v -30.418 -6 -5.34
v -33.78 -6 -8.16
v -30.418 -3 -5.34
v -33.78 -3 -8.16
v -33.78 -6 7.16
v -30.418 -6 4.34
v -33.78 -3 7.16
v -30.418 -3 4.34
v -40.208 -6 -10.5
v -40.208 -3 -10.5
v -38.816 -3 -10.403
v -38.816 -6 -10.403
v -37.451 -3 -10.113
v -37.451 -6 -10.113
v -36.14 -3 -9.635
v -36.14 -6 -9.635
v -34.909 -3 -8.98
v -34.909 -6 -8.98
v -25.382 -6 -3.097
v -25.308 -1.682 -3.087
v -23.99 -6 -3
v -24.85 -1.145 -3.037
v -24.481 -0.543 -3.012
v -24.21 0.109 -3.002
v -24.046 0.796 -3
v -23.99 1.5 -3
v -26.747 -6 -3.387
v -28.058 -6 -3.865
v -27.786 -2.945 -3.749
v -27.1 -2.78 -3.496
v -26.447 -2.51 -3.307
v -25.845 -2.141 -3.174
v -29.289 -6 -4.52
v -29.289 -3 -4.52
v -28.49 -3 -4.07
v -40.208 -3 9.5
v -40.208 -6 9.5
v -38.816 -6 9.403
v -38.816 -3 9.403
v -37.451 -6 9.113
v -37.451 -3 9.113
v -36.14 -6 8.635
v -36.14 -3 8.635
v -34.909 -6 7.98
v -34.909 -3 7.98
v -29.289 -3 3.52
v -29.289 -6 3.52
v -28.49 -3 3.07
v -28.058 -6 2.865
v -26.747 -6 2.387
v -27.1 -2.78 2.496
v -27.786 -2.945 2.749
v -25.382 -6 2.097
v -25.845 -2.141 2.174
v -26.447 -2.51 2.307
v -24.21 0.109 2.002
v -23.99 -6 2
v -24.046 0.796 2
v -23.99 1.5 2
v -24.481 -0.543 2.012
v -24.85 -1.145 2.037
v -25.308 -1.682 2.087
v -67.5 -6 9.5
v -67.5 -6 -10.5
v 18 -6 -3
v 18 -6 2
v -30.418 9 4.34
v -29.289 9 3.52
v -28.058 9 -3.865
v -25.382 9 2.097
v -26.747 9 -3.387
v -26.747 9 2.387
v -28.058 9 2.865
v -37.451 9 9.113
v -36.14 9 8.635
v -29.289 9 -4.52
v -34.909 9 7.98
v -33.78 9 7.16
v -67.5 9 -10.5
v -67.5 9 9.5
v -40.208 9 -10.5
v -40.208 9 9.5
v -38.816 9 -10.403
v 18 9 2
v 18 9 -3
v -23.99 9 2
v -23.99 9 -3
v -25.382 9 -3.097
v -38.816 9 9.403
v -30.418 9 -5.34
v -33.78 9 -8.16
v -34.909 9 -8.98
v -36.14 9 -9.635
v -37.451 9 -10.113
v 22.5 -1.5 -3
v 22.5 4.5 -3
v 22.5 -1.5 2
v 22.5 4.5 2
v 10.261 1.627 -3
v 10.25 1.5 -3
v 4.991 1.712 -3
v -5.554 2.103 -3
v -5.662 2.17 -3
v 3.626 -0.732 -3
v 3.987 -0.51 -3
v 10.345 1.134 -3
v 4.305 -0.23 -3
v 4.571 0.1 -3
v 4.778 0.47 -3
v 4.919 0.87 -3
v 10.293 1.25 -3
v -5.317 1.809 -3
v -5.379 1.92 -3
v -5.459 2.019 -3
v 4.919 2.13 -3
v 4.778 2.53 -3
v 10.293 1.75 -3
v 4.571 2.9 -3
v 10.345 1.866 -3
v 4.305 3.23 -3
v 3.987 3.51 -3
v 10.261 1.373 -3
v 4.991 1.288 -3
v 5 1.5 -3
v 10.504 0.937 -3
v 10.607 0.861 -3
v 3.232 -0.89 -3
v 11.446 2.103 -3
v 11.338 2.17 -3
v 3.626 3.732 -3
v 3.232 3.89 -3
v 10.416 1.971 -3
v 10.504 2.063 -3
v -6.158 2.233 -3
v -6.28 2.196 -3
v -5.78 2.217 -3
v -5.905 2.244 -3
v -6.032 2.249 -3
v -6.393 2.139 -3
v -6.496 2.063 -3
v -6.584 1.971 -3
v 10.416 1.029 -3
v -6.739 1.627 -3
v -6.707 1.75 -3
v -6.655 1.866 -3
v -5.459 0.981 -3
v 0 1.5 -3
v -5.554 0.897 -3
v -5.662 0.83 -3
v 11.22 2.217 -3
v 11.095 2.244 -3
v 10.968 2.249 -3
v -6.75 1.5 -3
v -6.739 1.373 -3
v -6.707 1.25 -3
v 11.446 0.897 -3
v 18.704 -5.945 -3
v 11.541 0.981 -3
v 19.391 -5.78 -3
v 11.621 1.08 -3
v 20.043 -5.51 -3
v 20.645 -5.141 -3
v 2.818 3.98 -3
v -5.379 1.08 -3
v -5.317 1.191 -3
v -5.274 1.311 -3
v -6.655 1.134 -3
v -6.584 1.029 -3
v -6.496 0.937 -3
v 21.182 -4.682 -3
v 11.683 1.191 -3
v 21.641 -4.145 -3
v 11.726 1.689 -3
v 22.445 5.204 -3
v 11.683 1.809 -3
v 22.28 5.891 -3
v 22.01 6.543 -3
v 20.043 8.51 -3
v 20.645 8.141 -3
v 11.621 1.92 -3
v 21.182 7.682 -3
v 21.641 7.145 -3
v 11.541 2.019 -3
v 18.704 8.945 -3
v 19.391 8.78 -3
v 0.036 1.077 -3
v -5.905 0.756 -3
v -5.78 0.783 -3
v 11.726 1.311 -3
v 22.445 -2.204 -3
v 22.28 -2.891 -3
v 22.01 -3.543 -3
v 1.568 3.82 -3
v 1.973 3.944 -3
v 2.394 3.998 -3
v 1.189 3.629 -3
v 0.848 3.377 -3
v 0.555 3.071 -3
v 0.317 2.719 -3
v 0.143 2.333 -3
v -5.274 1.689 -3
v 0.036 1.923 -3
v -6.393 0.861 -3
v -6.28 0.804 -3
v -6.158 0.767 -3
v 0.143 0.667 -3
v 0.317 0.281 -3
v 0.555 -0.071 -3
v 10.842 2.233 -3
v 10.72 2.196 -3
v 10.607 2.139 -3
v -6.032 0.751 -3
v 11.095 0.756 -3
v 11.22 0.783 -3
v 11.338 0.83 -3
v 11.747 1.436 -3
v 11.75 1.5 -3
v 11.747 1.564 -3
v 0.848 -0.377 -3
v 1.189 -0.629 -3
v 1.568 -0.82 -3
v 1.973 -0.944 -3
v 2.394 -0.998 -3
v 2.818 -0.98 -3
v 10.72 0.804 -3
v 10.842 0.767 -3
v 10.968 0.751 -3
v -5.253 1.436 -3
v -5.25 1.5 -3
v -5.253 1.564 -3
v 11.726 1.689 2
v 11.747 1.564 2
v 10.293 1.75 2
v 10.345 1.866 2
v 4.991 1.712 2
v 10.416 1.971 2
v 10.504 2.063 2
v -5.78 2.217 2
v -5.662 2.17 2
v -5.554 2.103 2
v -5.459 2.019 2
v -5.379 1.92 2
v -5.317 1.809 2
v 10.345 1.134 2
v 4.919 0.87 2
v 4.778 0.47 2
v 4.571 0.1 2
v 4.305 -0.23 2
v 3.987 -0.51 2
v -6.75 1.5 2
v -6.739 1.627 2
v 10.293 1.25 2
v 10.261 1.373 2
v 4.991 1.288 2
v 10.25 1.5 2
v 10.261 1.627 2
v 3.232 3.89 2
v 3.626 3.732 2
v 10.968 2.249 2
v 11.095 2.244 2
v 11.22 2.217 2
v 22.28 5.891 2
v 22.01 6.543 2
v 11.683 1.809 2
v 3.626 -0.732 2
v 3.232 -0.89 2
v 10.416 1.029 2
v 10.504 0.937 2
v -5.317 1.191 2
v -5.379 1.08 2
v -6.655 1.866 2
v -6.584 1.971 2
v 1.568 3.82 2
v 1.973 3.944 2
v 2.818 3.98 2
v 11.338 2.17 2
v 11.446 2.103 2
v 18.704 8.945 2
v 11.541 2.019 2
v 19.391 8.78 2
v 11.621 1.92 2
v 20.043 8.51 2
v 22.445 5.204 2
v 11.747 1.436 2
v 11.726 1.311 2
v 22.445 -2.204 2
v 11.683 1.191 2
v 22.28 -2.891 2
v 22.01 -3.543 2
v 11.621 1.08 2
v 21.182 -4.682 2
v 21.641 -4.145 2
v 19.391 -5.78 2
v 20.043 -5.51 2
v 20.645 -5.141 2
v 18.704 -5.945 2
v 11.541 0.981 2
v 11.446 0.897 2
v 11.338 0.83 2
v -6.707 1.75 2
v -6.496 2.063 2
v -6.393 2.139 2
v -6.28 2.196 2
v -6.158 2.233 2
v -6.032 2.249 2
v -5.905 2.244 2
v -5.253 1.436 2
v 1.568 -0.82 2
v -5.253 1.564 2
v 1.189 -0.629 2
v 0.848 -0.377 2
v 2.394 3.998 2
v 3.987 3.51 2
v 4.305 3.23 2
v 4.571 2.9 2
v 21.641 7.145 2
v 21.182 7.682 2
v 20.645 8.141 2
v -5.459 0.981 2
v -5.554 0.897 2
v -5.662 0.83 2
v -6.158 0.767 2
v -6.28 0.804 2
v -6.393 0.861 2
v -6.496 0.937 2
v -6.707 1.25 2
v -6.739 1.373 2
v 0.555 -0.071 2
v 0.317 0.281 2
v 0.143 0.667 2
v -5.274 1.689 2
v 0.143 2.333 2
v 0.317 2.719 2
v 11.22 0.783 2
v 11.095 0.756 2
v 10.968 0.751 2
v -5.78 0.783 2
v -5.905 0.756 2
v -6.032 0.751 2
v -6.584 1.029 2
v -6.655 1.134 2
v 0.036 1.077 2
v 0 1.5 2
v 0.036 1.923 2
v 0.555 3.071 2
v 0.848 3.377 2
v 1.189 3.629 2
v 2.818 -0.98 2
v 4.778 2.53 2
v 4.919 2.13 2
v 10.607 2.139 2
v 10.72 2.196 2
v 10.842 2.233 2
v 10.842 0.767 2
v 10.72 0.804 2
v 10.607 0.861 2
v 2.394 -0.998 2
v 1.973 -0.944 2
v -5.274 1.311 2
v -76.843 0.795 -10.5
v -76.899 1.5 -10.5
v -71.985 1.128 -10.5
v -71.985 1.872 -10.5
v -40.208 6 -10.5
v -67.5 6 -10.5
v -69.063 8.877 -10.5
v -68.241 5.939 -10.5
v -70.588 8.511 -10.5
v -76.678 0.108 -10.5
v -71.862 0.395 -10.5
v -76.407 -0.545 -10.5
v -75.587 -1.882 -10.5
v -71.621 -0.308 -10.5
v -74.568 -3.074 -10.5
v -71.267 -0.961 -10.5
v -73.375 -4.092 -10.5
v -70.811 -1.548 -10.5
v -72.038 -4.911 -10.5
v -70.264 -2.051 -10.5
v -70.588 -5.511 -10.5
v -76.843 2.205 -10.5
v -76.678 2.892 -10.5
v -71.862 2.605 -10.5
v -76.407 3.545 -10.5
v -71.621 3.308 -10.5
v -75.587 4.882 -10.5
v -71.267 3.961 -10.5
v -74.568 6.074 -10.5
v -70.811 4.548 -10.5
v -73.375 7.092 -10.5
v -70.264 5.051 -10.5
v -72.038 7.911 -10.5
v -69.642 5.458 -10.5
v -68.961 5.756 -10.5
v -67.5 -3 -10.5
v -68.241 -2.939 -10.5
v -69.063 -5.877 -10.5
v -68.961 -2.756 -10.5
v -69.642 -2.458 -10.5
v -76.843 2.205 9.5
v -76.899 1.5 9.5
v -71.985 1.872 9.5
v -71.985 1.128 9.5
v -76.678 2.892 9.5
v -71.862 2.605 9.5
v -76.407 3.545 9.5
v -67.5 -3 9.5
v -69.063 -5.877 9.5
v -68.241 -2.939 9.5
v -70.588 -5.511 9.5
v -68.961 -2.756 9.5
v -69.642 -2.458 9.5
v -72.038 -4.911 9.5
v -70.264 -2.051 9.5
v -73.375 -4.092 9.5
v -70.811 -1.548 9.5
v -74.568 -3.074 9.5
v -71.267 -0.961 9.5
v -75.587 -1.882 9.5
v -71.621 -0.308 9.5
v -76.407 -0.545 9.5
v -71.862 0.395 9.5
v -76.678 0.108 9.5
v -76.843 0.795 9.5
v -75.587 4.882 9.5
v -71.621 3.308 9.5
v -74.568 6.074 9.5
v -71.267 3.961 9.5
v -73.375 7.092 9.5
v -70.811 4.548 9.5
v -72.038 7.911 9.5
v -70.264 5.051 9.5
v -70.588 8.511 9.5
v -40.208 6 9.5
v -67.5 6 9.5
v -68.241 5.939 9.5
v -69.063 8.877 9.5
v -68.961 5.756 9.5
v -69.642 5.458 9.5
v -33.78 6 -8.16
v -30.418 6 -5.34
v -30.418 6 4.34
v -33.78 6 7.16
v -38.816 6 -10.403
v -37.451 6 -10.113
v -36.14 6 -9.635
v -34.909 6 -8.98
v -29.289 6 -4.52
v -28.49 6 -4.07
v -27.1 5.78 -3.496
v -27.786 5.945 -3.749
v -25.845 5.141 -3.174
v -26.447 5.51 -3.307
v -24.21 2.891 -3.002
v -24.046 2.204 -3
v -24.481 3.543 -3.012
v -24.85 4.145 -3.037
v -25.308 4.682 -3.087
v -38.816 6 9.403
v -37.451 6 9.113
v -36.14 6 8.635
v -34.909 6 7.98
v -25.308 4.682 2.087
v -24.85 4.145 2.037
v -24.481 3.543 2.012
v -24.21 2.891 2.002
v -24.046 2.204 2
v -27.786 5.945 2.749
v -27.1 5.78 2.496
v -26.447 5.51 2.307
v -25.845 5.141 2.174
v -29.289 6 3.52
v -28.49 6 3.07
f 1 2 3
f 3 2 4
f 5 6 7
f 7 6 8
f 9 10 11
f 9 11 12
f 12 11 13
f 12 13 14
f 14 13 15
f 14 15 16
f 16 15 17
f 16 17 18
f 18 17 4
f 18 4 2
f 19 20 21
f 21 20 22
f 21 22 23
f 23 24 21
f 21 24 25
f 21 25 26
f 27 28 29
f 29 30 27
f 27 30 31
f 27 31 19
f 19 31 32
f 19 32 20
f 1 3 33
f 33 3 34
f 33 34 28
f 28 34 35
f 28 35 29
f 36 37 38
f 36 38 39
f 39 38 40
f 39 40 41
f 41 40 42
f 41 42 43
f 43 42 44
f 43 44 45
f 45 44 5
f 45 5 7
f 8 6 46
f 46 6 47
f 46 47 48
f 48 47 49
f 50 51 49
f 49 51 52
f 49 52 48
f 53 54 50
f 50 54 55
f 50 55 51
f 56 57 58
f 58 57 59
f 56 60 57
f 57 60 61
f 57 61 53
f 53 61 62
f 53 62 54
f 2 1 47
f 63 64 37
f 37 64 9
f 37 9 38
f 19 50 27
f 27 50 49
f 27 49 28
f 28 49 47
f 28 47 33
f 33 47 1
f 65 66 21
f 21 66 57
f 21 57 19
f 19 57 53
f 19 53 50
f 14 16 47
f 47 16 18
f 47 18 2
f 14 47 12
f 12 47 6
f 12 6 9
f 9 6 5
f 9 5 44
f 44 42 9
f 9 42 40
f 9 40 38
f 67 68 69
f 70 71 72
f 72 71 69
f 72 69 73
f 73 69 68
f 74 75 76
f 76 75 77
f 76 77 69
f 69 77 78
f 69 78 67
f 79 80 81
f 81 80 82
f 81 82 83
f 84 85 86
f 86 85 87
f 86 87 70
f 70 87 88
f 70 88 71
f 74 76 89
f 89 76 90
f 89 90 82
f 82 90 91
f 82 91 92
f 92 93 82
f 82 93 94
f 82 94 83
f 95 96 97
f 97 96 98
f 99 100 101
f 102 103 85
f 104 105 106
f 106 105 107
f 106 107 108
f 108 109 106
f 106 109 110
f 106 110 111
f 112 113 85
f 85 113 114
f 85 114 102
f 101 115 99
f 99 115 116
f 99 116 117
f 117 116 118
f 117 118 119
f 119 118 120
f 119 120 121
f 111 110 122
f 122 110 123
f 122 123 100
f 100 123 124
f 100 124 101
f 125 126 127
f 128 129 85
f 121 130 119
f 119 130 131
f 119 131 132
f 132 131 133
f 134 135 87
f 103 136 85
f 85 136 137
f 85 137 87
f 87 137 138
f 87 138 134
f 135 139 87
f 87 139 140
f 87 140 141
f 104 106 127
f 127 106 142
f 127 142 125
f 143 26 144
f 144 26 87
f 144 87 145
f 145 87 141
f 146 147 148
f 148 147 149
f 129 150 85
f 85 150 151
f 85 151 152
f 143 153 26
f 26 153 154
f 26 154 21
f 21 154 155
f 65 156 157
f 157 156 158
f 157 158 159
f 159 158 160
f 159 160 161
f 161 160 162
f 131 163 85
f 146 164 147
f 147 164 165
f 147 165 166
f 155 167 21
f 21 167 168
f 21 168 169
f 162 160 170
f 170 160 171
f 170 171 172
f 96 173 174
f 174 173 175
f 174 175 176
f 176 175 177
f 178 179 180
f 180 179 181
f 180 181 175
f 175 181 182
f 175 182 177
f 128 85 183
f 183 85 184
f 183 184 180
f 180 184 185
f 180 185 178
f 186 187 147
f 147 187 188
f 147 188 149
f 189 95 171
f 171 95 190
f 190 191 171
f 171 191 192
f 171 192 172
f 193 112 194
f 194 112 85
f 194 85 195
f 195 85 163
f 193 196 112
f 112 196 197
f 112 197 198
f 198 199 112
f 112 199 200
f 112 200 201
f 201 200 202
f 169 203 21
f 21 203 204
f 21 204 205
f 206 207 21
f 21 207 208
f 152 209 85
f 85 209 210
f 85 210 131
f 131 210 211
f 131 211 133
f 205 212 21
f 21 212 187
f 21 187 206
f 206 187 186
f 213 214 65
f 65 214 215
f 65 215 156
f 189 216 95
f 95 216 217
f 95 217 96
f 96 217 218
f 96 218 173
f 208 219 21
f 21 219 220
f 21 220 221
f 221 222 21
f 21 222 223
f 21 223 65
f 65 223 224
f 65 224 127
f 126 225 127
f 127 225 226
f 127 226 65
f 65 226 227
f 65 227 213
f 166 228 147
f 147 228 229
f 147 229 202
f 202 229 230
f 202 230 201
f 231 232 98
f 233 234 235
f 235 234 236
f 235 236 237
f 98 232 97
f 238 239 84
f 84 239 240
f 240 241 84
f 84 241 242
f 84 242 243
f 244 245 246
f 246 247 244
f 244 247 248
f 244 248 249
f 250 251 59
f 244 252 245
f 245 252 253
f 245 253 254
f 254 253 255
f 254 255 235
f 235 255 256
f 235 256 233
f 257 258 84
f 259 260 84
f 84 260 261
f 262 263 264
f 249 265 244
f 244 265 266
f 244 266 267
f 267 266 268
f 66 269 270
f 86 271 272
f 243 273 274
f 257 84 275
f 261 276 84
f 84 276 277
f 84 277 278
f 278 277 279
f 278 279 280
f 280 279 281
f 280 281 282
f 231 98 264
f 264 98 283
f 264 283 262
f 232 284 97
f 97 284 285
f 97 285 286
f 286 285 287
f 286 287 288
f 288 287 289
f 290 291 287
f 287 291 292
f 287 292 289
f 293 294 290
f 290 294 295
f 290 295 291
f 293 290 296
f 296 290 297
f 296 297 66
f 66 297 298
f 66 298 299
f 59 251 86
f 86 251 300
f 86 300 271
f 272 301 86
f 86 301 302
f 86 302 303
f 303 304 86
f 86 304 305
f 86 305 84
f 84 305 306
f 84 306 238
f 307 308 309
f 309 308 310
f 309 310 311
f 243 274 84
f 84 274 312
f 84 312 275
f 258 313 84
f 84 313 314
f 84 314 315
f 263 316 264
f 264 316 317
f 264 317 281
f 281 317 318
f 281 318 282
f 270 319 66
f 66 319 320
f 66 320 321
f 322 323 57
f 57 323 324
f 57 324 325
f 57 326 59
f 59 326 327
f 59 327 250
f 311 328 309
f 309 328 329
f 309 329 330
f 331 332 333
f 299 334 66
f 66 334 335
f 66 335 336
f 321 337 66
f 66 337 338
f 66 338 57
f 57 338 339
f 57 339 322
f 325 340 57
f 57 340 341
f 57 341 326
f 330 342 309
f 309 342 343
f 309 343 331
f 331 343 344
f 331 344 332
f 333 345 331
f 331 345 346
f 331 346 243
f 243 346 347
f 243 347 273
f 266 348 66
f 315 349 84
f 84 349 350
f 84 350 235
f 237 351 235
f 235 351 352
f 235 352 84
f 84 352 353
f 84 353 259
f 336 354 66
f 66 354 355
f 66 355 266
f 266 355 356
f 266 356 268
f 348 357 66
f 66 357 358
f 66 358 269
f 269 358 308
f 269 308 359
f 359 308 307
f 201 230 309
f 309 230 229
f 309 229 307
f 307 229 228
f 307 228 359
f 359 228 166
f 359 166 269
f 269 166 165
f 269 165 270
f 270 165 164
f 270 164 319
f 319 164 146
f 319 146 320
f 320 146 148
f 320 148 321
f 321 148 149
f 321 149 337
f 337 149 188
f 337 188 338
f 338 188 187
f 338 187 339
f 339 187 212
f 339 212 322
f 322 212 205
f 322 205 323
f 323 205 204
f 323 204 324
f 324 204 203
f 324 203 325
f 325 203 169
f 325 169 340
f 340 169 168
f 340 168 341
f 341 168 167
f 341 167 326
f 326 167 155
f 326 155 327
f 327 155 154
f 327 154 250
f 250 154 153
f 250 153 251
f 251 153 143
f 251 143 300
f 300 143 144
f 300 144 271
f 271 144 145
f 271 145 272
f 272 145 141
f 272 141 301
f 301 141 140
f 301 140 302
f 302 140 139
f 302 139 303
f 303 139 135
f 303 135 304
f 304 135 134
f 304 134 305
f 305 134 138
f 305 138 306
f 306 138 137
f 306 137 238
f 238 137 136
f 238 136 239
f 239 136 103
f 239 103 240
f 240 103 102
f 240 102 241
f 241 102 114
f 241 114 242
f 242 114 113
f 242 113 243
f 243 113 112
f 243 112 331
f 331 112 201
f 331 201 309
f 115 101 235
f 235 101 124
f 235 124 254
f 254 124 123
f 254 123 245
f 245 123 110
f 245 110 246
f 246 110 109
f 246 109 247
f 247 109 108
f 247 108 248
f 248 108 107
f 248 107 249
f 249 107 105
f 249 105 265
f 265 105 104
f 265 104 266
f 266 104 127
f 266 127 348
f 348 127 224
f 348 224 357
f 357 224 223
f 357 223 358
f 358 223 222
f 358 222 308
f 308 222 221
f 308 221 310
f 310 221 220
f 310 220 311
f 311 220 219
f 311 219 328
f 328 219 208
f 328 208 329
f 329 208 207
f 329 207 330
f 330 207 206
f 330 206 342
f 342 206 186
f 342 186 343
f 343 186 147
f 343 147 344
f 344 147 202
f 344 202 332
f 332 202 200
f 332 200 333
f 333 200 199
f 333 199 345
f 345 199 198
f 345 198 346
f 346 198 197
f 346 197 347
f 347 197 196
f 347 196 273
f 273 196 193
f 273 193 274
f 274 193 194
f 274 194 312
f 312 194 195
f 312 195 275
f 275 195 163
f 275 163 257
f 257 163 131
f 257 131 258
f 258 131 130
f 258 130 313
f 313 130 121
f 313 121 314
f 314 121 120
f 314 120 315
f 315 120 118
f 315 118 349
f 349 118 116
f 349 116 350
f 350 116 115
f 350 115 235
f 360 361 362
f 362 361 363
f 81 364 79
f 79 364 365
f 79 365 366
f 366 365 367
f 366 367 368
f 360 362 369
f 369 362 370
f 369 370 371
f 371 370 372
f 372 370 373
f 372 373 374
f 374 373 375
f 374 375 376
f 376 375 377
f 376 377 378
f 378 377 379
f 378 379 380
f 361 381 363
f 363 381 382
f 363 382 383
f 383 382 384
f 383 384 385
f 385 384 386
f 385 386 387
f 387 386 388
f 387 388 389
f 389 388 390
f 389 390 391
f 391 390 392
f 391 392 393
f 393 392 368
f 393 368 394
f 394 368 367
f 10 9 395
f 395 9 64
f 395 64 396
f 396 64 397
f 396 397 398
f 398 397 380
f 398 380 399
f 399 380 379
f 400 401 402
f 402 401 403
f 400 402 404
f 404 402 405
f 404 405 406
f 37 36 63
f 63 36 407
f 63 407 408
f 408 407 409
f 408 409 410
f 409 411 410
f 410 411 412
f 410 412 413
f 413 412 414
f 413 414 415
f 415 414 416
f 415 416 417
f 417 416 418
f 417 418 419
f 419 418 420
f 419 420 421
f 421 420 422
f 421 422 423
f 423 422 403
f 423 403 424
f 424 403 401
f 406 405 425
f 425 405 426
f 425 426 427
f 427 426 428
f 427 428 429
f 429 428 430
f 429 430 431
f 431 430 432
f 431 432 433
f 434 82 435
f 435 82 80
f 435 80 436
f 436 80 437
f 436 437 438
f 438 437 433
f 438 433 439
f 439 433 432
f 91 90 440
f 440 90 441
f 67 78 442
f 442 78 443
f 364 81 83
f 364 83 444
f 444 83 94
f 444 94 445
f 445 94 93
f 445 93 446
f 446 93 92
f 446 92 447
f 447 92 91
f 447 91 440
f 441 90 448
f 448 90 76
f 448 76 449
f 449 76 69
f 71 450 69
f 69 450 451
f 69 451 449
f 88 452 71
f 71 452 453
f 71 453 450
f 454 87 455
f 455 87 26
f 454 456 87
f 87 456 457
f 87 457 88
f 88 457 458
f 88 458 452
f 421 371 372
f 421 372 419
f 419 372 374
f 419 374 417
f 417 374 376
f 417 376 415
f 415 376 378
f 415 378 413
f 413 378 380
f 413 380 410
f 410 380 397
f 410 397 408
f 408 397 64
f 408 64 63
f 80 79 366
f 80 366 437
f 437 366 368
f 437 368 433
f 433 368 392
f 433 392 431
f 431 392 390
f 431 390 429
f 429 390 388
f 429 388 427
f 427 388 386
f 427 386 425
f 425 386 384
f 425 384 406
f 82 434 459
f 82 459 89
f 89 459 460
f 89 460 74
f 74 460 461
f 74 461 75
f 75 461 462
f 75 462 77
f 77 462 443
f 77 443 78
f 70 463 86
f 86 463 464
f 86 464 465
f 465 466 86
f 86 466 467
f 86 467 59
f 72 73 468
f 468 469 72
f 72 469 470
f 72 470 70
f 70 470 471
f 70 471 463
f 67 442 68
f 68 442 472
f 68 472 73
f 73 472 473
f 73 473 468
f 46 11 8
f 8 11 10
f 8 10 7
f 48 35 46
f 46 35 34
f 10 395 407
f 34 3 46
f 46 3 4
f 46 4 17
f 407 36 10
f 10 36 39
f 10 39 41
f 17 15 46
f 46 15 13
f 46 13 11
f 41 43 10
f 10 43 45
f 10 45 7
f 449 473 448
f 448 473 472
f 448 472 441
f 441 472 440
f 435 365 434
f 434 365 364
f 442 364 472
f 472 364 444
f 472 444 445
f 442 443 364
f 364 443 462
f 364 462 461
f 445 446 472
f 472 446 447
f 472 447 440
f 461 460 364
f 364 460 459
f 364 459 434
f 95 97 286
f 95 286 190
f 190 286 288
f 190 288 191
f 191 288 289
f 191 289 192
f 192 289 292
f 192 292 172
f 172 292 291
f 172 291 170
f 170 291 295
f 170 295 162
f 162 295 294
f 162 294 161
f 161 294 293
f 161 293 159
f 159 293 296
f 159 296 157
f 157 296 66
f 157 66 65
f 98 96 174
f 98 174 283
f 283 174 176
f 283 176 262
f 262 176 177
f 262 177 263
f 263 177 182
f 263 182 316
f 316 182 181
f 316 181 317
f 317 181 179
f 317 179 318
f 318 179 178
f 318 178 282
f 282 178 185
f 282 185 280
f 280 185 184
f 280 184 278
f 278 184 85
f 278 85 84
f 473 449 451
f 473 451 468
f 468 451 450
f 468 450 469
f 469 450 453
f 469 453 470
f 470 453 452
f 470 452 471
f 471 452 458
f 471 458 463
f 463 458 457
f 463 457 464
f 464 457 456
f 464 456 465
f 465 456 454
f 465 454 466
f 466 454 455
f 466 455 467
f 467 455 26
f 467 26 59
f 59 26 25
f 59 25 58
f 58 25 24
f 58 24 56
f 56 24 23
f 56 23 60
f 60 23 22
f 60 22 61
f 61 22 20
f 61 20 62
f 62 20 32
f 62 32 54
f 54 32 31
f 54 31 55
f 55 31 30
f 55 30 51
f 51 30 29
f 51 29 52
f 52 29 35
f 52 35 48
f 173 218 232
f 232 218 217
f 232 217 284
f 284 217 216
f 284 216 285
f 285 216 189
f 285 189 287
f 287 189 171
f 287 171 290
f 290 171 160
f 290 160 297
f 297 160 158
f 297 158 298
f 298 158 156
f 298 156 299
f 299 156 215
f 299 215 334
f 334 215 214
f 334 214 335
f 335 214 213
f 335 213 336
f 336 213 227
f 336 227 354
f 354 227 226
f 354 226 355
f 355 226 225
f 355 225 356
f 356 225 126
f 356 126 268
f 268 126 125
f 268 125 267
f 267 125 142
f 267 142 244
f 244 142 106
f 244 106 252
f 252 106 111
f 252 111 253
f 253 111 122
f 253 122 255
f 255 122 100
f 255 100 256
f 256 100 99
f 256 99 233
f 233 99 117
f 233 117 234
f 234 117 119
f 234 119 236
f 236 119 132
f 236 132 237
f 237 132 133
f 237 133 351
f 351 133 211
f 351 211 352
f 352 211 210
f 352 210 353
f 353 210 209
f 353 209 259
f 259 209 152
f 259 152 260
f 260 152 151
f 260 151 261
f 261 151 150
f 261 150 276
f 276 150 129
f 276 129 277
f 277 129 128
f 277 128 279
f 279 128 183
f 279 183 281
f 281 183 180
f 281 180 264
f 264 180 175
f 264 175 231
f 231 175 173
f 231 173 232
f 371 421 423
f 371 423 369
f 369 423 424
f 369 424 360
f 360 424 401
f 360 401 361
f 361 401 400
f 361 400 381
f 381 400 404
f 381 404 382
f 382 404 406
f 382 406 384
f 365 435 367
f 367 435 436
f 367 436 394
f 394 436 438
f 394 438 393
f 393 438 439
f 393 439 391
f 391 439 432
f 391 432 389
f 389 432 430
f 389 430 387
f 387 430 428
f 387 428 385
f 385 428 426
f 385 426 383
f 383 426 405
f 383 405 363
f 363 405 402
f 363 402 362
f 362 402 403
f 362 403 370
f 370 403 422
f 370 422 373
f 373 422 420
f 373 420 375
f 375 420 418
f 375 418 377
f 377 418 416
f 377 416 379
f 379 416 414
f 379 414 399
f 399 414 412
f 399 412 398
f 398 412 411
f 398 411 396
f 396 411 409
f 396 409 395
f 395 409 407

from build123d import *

# Parameters (mm, degrees)
ESBO_O1_W                         = 40
ESBO_O1_H                         = 15
RESSALTO_EXTRUS_O1_DEPTH          = 3
ESBO_O3_W                         = 40
ESBO_O3_H                         = 15
RESSALTO_EXTRUS_O2_DEPTH          = 2
CORTE_EXTRUS_O1_REACH             = 26.418
ESBO_O2_R                         = 2.5
ESBO_O2_R_2                       = 0.75
CORTE_EXTRUS_O1_DIRECTION_2_REACH = 26.418
ESBO_O5_W                         = 20
ESBO_O5_H                         = 15
RESSALTO_EXTRUS_O4_DEPTH          = 60
CHANFRO1_SIZE                     = 19.068057482
CHANFRO1_SIZE_2                   = 16
FILETE4_R                         = 10
CORTE_EXTRUS_O2_DEPTH             = 81.237970309
FILETE5_R                         = 4.5
CIRPATTERN1_COUNT                 = 2
FILLET1_R                         = 4.5


with BuildPart() as part:
    # Esboço1 → Ressalto-extrusão1 (new body)
    with BuildSketch(Plane.XY):
        with Locations((2.5, 1.5)):
            Rectangle(ESBO_O1_W, ESBO_O1_H)
    extrude(amount=-RESSALTO_EXTRUS_O1_DEPTH)

    # Esboço3 → Ressalto-extrusão2 (add)
    with BuildSketch(Plane.XY):
        with Locations((2.5, 1.5)):
            Rectangle(ESBO_O3_W, ESBO_O3_H)
    extrude(amount=RESSALTO_EXTRUS_O2_DEPTH)

    # Corte-extrusão1: up to this face of the body (flat: up to its plane)
    corte_extrus_o1_end = Plane(part.part.faces().sort_by_distance((2.5, 1.5, 2))[0])
    # Esboço2 → Corte-extrusão1 (cut, up to the picked face)
    with BuildSketch(Plane.XY, mode=Mode.PRIVATE) as corte_extrus_o1_sk1:
        with Locations(Location((2.5, 1.5, 0), (0, 0, 180))):
            Circle(ESBO_O2_R)
    corte_extrus_o1_tool1 = split(extrude(corte_extrus_o1_sk1.sketch, amount=CORTE_EXTRUS_O1_REACH, mode=Mode.PRIVATE), bisect_by=corte_extrus_o1_end, keep=Keep.BOTH, mode=Mode.PRIVATE)
    # Esboço2 → Corte-extrusão1 (cut, up to the picked face)
    with BuildSketch(Plane.XY, mode=Mode.PRIVATE) as corte_extrus_o1_sk2:
        with Locations(Location((-6, 1.5, 0), (0, 0, 180))):
            Circle(ESBO_O2_R_2)
    corte_extrus_o1_tool2 = split(extrude(corte_extrus_o1_sk2.sketch, amount=CORTE_EXTRUS_O1_REACH, mode=Mode.PRIVATE), bisect_by=corte_extrus_o1_end, keep=Keep.BOTH, mode=Mode.PRIVATE)
    corte_extrus_o1_1 = corte_extrus_o1_tool1.solids().sort_by(Axis((2.5, 1.5, 0), (0, 0, 1)))[0]
    add(corte_extrus_o1_1, mode=Mode.SUBTRACT)
    corte_extrus_o1_2 = corte_extrus_o1_tool2.solids().sort_by(Axis((-6, 1.5, 0), (0, 0, 1)))[0]
    add(corte_extrus_o1_2, mode=Mode.SUBTRACT)
    corte_extrus_o1 = corte_extrus_o1_1 + corte_extrus_o1_2  # Corte-extrusão1 as one shape, for the pattern or mirror that repeats it

    # Corte-extrusão1 direction 2: up to this face of the body (flat: up to its plane)
    corte_extrus_o1_direction_2_end = Plane(part.part.faces().sort_by_distance((2.5, 1.5, -3))[0])
    # Esboço2 → Corte-extrusão1 direction 2 (cut, up to the picked face)
    with BuildSketch(Plane.XY, mode=Mode.PRIVATE) as corte_extrus_o1_direction_2_sk1:
        with Locations(Location((2.5, 1.5, 0), (0, 0, 180))):
            Circle(ESBO_O2_R)
    corte_extrus_o1_direction_2_tool1 = split(extrude(corte_extrus_o1_direction_2_sk1.sketch, amount=-CORTE_EXTRUS_O1_DIRECTION_2_REACH, mode=Mode.PRIVATE), bisect_by=corte_extrus_o1_direction_2_end, keep=Keep.BOTH, mode=Mode.PRIVATE)
    # Esboço2 → Corte-extrusão1 direction 2 (cut, up to the picked face)
    with BuildSketch(Plane.XY, mode=Mode.PRIVATE) as corte_extrus_o1_direction_2_sk2:
        with Locations(Location((-6, 1.5, 0), (0, 0, 180))):
            Circle(ESBO_O2_R_2)
    corte_extrus_o1_direction_2_tool2 = split(extrude(corte_extrus_o1_direction_2_sk2.sketch, amount=-CORTE_EXTRUS_O1_DIRECTION_2_REACH, mode=Mode.PRIVATE), bisect_by=corte_extrus_o1_direction_2_end, keep=Keep.BOTH, mode=Mode.PRIVATE)
    corte_extrus_o1_direction_2_1 = corte_extrus_o1_direction_2_tool1.solids().sort_by(Axis((2.5, 1.5, 0), (0, 0, -1)))[0]
    add(corte_extrus_o1_direction_2_1, mode=Mode.SUBTRACT)
    corte_extrus_o1_direction_2_2 = corte_extrus_o1_direction_2_tool2.solids().sort_by(Axis((-6, 1.5, 0), (0, 0, -1)))[0]
    add(corte_extrus_o1_direction_2_2, mode=Mode.SUBTRACT)
    corte_extrus_o1_direction_2 = corte_extrus_o1_direction_2_1 + corte_extrus_o1_direction_2_2  # Corte-extrusão1 direction 2 as one shape, for the pattern or mirror that repeats it

    # Esboço5 → Ressalto-extrusão4 (add)
    with BuildSketch(Plane.ZY.offset(17.5)):
        with Locations((-0.5, 1.5)):
            Rectangle(ESBO_O5_W, ESBO_O5_H)
    extrude(amount=RESSALTO_EXTRUS_O4_DEPTH)

    # Chanfro1
    # the kernel refuses this chamfer: 19.068057482, 16 mm, written as the material it takes off along each edge
    with BuildSketch(Plane(origin=(-17.5, -55.146127732, 9.5), x_dir=(-0.9996889667359941, 0, 0.024939322090234247), z_dir=(0, 1, 0))) as chanfro1_piece_1_section:
        Polygon((CHANFRO1_SIZE * 0.99968896671, -CHANFRO1_SIZE * 0.0249393220896), (-CHANFRO1_SIZE_2 * 0.0249393220902, -CHANFRO1_SIZE_2 * 0.999688966736), (0, 0), align=None)
    chanfro1_piece_1 = extrude(amount=113.292255464, mode=Mode.PRIVATE)
    chanfro1_piece_1 = split(chanfro1_piece_1, bisect_by=Plane(origin=(-25.155035178, 1.5, 2), z_dir=(0, 0, 1)), keep=Keep.TOP, mode=Mode.PRIVATE)
    add(chanfro1_piece_1, mode=Mode.SUBTRACT)
    with BuildSketch(Plane(origin=(-17.5, -55.146127732, 9.5), x_dir=(-0.9996889667359941, 0, 0.024939322090234247), z_dir=(0, 1, 0))) as chanfro1_piece_2_section:
        Polygon((CHANFRO1_SIZE * 0.99968896671, -CHANFRO1_SIZE * 0.0249393220896), (-CHANFRO1_SIZE_2 * 0.0249393220902, -CHANFRO1_SIZE_2 * 0.999688966736), (0, 0), align=None)
    chanfro1_piece_2 = extrude(amount=113.292255464, mode=Mode.PRIVATE)
    chanfro1_piece_2 = split(chanfro1_piece_2, bisect_by=Plane(origin=(-18.373305927, 1.5, -3), z_dir=(0, 0, -1)), keep=Keep.TOP, mode=Mode.PRIVATE)
    add(chanfro1_piece_2, mode=Mode.SUBTRACT)
    with BuildSketch(Plane(origin=(-17.5, 58.146127732, -10.5), x_dir=(-0.9996889667359941, 0, -0.02493932209023425), z_dir=(0, -1, 0))) as chanfro1_piece_3_section:
        Polygon((CHANFRO1_SIZE * 0.99968896671, -CHANFRO1_SIZE * 0.0249393220896), (-CHANFRO1_SIZE_2 * 0.0249393220902, -CHANFRO1_SIZE_2 * 0.999688966736), (0, 0), align=None)
    chanfro1_piece_3 = extrude(amount=113.292255464, mode=Mode.PRIVATE)
    chanfro1_piece_3 = split(chanfro1_piece_3, bisect_by=Plane(origin=(-25.155035178, 1.5, -3), z_dir=(0, 0, -1)), keep=Keep.TOP, mode=Mode.PRIVATE)
    add(chanfro1_piece_3, mode=Mode.SUBTRACT)
    with BuildSketch(Plane(origin=(-17.5, 58.146127732, -10.5), x_dir=(-0.9996889667359941, 0, -0.02493932209023425), z_dir=(0, -1, 0))) as chanfro1_piece_4_section:
        Polygon((CHANFRO1_SIZE * 0.99968896671, -CHANFRO1_SIZE * 0.0249393220896), (-CHANFRO1_SIZE_2 * 0.0249393220902, -CHANFRO1_SIZE_2 * 0.999688966736), (0, 0), align=None)
    chanfro1_piece_4 = extrude(amount=113.292255464, mode=Mode.PRIVATE)
    chanfro1_piece_4 = split(chanfro1_piece_4, bisect_by=Plane(origin=(-18.373305927, 1.5, 2), z_dir=(0, 0, 1)), keep=Keep.TOP, mode=Mode.PRIVATE)
    add(chanfro1_piece_4, mode=Mode.SUBTRACT)

    # Filete4
    # the kernel refuses this fillet: 10 mm, written as the material it adds along each edge
    with BuildSketch(Plane(origin=(-27.629905537, -6, 2), x_dir=(1, 0, 0), z_dir=(0, 1, 0)), Plane(origin=(-27.629905537, 9, -3), x_dir=(1, 0, 0), z_dir=(0, -1, 0))) as filete4_piece_1:
        with BuildLine():
            CenterArc((FILETE4_R * 0.363970234266, -FILETE4_R), FILETE4_R, 90, 40)
            Line((-FILETE4_R * 0.27881737542, -FILETE4_R * 0.233955556881), (0, 0))
            Line((0, 0), (FILETE4_R * 0.363970234266, 0))
        make_face()
    extrude(amount=15)
    # the kernel refuses this fillet: 10 mm, written as the material it takes off along each edge
    with BuildSketch(Plane(origin=(-36.568057482, -15.099255857, 9.5), x_dir=(-1, 0, 0), z_dir=(0, 1, 0))) as filete4_2_piece_1:
        with BuildLine():
            CenterArc((FILETE4_R * 0.363970234266, -FILETE4_R), FILETE4_R, 90, 40)
            Line((-FILETE4_R * 0.27881737542, -FILETE4_R * 0.233955556881), (0, 0))
            Line((0, 0), (FILETE4_R * 0.363970234266, 0))
        make_face()
    extrude(amount=33.198511713, mode=Mode.SUBTRACT)
    with BuildSketch(Plane(origin=(-77.5, 9, 34.5), x_dir=(0, -1, 0), z_dir=(0, 0, -1))) as filete4_2_piece_2:
        with BuildLine():
            CenterArc((FILETE4_R, -FILETE4_R), FILETE4_R, 90, 90)
            Line((0, -FILETE4_R), (0, 0))
            Line((0, 0), (FILETE4_R, 0))
        make_face()
    extrude(amount=70, mode=Mode.SUBTRACT)
    with BuildSketch(Plane(origin=(-77.5, -6, -35.5), x_dir=(1, 0, 0), z_dir=(0, 0, 1))) as filete4_2_piece_3:
        with BuildLine():
            CenterArc((FILETE4_R, FILETE4_R), FILETE4_R, 180, 90)
            Line((0, FILETE4_R), (0, 0))
            Line((0, 0), (FILETE4_R, 0))
        make_face()
    extrude(amount=70, mode=Mode.SUBTRACT)
    with BuildSketch(Plane(origin=(-36.568057482, 18.099255857, -10.5), x_dir=(0.7660444431190706, 0, 0.6427876096864291), z_dir=(0, -1, 0))) as filete4_2_piece_4:
        with BuildLine():
            CenterArc((FILETE4_R * 0.363970234266, FILETE4_R), FILETE4_R, 230, 40)
            Line((-FILETE4_R * 0.27881737542, FILETE4_R * 0.233955556881), (0, 0))
            Line((0, 0), (FILETE4_R * 0.363970234266, 0))
        make_face()
    extrude(amount=33.198511713, mode=Mode.SUBTRACT)

    # Esboço6 → Corte-extrusão2 (cut, through all)
    with BuildSketch(Plane.XY.offset(9.5)):
        with BuildLine():
            Line((-43.207759824, 6), (-67.5, 6))
            ThreePointArc((-67.5, 6), (-71.468626967, 4.766281297), (-74.038348415, 1.5))
            ThreePointArc((-74.038348415, 1.5), (-71.468626967, -1.766281297), (-67.5, -3))
            Line((-67.5, -3), (-43.207759824, -3))
            Line((-43.207759824, -3), (-23.990203194, -3))
            Line((-23.990203194, -3), (-23.990203194, 6))
            Line((-23.990203194, 6), (-43.207759824, 6))
        make_face()
    extrude(amount=-CORTE_EXTRUS_O2_DEPTH, mode=Mode.SUBTRACT)

    # Filete5
    # the kernel refuses this fillet: 4.5 mm, written as the material it adds along each edge
    with BuildSketch(Plane(origin=(-23.990203194, 6, 13.25), x_dir=(0, -1, 0), z_dir=(0, 0, -1))) as filete5_piece_1_section:
        with BuildLine():
            CenterArc((FILETE5_R, FILETE5_R), FILETE5_R, 180, 90)
            Line((0, FILETE5_R), (0, 0))
            Line((0, 0), (FILETE5_R, 0))
        make_face()
    filete5_piece_1 = extrude(amount=27.5, mode=Mode.PRIVATE)
    filete5_piece_1 = filete5_piece_1 - Plane(origin=(-23.990203194, 5.729138272, 12), x_dir=(1, 0, 0), z_dir=(0, -1, 0)) * Cylinder(10, 73, mode=Mode.PRIVATE)
    filete5_piece_1 = filete5_piece_1 - Plane(origin=(-23.990203194, 5.729138272, -13), x_dir=(1, 0, 0), z_dir=(0, 1, 0)) * Cylinder(10, 73, mode=Mode.PRIVATE)
    add(filete5_piece_1)
    with BuildSketch(Plane(origin=(-23.990203194, -3, 13.25), x_dir=(-1, 0, 0), z_dir=(0, 0, -1))) as filete5_piece_2_section:
        with BuildLine():
            CenterArc((FILETE5_R, FILETE5_R), FILETE5_R, 180, 90)
            Line((0, FILETE5_R), (0, 0))
            Line((0, 0), (FILETE5_R, 0))
        make_face()
    filete5_piece_2 = extrude(amount=27.5, mode=Mode.PRIVATE)
    filete5_piece_2 = filete5_piece_2 - Plane(origin=(-23.990203194, -2.729138204, 12), x_dir=(1, 0, 0), z_dir=(0, -1, 0)) * Cylinder(10, 73, mode=Mode.PRIVATE)
    filete5_piece_2 = filete5_piece_2 - Plane(origin=(-23.990203194, -2.729138204, -13), x_dir=(1, 0, 0), z_dir=(0, 1, 0)) * Cylinder(10, 73, mode=Mode.PRIVATE)
    add(filete5_piece_2)
    # the kernel refuses this fillet: 4.5 mm, written as the material it takes off along each edge
    with BuildSketch(Plane(origin=(22.5, 9, -14.25), x_dir=(0, -1, 0), z_dir=(0, 0, 1))) as filete5_2_piece_1:
        with BuildLine():
            CenterArc((FILETE5_R, -FILETE5_R), FILETE5_R, 90, 90)
            Line((0, -FILETE5_R), (0, 0))
            Line((0, 0), (FILETE5_R, 0))
        make_face()
    extrude(amount=27.5, mode=Mode.SUBTRACT)
    with BuildSketch(Plane(origin=(22.5, -6, -14.25), x_dir=(0, 1, 0), z_dir=(0, 0, 1))) as filete5_2_piece_2:
        with BuildLine():
            CenterArc((FILETE5_R, FILETE5_R), FILETE5_R, 180, 90)
            Line((0, FILETE5_R), (0, 0))
            Line((0, 0), (FILETE5_R, 0))
        make_face()
    extrude(amount=27.5, mode=Mode.SUBTRACT)

    # CirPattern1: Corte-extrusão1, Corte-extrusão1 direction 2 ×2 about axis
    cirpattern1_axis = Axis((2.5, 1.5, 0), (0, 0, 1))
    add([corte_extrus_o1.rotate(cirpattern1_axis, i * 360 / CIRPATTERN1_COUNT) for i in range(1, CIRPATTERN1_COUNT)], mode=Mode.SUBTRACT)
    add([corte_extrus_o1_direction_2.rotate(cirpattern1_axis, i * 360 / CIRPATTERN1_COUNT) for i in range(1, CIRPATTERN1_COUNT)], mode=Mode.SUBTRACT)

    # Fillet1
    # the kernel refuses this fillet: 4.5 mm, written as the material it adds along each edge
    with BuildSketch(Plane(origin=(-74.038348415, 1.5, 9.5), x_dir=(0.8237540047591835, -0.5669473870150624, 0), z_dir=(0, 0, -1))) as fillet1_piece_1:
        with BuildLine():
            CenterArc((5.385987304, -3.706897218), FILLET1_R, 55.462463337, 179.999811507)
            ThreePointArc((2.834717965, -7.413786043), (0.265006632, -4.147503783), (0, 0))
            ThreePointArc((0, 0), (3.968622224, 1.233715439), (7.937244448, 0))
        make_face()
    extrude(amount=20)
    # the kernel refuses this fillet: 4.5 mm, written as the material it takes off along each edge
    with BuildSketch(Plane(origin=(-77.182458366, 1.5, -15.968577797), x_dir=(0.3543987879296291, -0.9350943797895536, 0), z_dir=(0, 0, 1))) as fillet1_2_piece_1:
        with BuildLine():
            CenterArc((1.695259117, 4.473004216), FILLET1_R, 222.207706223, 54.071383579)
            ThreePointArc((-1.63795498, 1.449813223), (-0.858738838, 0.679985448), (0, 0))
            ThreePointArc((0, 0), (1.093715559, -0.05999063), (2.187431119, 0))
        make_face()
    extrude(amount=30.937155594, mode=Mode.SUBTRACT)


solid = part.part
